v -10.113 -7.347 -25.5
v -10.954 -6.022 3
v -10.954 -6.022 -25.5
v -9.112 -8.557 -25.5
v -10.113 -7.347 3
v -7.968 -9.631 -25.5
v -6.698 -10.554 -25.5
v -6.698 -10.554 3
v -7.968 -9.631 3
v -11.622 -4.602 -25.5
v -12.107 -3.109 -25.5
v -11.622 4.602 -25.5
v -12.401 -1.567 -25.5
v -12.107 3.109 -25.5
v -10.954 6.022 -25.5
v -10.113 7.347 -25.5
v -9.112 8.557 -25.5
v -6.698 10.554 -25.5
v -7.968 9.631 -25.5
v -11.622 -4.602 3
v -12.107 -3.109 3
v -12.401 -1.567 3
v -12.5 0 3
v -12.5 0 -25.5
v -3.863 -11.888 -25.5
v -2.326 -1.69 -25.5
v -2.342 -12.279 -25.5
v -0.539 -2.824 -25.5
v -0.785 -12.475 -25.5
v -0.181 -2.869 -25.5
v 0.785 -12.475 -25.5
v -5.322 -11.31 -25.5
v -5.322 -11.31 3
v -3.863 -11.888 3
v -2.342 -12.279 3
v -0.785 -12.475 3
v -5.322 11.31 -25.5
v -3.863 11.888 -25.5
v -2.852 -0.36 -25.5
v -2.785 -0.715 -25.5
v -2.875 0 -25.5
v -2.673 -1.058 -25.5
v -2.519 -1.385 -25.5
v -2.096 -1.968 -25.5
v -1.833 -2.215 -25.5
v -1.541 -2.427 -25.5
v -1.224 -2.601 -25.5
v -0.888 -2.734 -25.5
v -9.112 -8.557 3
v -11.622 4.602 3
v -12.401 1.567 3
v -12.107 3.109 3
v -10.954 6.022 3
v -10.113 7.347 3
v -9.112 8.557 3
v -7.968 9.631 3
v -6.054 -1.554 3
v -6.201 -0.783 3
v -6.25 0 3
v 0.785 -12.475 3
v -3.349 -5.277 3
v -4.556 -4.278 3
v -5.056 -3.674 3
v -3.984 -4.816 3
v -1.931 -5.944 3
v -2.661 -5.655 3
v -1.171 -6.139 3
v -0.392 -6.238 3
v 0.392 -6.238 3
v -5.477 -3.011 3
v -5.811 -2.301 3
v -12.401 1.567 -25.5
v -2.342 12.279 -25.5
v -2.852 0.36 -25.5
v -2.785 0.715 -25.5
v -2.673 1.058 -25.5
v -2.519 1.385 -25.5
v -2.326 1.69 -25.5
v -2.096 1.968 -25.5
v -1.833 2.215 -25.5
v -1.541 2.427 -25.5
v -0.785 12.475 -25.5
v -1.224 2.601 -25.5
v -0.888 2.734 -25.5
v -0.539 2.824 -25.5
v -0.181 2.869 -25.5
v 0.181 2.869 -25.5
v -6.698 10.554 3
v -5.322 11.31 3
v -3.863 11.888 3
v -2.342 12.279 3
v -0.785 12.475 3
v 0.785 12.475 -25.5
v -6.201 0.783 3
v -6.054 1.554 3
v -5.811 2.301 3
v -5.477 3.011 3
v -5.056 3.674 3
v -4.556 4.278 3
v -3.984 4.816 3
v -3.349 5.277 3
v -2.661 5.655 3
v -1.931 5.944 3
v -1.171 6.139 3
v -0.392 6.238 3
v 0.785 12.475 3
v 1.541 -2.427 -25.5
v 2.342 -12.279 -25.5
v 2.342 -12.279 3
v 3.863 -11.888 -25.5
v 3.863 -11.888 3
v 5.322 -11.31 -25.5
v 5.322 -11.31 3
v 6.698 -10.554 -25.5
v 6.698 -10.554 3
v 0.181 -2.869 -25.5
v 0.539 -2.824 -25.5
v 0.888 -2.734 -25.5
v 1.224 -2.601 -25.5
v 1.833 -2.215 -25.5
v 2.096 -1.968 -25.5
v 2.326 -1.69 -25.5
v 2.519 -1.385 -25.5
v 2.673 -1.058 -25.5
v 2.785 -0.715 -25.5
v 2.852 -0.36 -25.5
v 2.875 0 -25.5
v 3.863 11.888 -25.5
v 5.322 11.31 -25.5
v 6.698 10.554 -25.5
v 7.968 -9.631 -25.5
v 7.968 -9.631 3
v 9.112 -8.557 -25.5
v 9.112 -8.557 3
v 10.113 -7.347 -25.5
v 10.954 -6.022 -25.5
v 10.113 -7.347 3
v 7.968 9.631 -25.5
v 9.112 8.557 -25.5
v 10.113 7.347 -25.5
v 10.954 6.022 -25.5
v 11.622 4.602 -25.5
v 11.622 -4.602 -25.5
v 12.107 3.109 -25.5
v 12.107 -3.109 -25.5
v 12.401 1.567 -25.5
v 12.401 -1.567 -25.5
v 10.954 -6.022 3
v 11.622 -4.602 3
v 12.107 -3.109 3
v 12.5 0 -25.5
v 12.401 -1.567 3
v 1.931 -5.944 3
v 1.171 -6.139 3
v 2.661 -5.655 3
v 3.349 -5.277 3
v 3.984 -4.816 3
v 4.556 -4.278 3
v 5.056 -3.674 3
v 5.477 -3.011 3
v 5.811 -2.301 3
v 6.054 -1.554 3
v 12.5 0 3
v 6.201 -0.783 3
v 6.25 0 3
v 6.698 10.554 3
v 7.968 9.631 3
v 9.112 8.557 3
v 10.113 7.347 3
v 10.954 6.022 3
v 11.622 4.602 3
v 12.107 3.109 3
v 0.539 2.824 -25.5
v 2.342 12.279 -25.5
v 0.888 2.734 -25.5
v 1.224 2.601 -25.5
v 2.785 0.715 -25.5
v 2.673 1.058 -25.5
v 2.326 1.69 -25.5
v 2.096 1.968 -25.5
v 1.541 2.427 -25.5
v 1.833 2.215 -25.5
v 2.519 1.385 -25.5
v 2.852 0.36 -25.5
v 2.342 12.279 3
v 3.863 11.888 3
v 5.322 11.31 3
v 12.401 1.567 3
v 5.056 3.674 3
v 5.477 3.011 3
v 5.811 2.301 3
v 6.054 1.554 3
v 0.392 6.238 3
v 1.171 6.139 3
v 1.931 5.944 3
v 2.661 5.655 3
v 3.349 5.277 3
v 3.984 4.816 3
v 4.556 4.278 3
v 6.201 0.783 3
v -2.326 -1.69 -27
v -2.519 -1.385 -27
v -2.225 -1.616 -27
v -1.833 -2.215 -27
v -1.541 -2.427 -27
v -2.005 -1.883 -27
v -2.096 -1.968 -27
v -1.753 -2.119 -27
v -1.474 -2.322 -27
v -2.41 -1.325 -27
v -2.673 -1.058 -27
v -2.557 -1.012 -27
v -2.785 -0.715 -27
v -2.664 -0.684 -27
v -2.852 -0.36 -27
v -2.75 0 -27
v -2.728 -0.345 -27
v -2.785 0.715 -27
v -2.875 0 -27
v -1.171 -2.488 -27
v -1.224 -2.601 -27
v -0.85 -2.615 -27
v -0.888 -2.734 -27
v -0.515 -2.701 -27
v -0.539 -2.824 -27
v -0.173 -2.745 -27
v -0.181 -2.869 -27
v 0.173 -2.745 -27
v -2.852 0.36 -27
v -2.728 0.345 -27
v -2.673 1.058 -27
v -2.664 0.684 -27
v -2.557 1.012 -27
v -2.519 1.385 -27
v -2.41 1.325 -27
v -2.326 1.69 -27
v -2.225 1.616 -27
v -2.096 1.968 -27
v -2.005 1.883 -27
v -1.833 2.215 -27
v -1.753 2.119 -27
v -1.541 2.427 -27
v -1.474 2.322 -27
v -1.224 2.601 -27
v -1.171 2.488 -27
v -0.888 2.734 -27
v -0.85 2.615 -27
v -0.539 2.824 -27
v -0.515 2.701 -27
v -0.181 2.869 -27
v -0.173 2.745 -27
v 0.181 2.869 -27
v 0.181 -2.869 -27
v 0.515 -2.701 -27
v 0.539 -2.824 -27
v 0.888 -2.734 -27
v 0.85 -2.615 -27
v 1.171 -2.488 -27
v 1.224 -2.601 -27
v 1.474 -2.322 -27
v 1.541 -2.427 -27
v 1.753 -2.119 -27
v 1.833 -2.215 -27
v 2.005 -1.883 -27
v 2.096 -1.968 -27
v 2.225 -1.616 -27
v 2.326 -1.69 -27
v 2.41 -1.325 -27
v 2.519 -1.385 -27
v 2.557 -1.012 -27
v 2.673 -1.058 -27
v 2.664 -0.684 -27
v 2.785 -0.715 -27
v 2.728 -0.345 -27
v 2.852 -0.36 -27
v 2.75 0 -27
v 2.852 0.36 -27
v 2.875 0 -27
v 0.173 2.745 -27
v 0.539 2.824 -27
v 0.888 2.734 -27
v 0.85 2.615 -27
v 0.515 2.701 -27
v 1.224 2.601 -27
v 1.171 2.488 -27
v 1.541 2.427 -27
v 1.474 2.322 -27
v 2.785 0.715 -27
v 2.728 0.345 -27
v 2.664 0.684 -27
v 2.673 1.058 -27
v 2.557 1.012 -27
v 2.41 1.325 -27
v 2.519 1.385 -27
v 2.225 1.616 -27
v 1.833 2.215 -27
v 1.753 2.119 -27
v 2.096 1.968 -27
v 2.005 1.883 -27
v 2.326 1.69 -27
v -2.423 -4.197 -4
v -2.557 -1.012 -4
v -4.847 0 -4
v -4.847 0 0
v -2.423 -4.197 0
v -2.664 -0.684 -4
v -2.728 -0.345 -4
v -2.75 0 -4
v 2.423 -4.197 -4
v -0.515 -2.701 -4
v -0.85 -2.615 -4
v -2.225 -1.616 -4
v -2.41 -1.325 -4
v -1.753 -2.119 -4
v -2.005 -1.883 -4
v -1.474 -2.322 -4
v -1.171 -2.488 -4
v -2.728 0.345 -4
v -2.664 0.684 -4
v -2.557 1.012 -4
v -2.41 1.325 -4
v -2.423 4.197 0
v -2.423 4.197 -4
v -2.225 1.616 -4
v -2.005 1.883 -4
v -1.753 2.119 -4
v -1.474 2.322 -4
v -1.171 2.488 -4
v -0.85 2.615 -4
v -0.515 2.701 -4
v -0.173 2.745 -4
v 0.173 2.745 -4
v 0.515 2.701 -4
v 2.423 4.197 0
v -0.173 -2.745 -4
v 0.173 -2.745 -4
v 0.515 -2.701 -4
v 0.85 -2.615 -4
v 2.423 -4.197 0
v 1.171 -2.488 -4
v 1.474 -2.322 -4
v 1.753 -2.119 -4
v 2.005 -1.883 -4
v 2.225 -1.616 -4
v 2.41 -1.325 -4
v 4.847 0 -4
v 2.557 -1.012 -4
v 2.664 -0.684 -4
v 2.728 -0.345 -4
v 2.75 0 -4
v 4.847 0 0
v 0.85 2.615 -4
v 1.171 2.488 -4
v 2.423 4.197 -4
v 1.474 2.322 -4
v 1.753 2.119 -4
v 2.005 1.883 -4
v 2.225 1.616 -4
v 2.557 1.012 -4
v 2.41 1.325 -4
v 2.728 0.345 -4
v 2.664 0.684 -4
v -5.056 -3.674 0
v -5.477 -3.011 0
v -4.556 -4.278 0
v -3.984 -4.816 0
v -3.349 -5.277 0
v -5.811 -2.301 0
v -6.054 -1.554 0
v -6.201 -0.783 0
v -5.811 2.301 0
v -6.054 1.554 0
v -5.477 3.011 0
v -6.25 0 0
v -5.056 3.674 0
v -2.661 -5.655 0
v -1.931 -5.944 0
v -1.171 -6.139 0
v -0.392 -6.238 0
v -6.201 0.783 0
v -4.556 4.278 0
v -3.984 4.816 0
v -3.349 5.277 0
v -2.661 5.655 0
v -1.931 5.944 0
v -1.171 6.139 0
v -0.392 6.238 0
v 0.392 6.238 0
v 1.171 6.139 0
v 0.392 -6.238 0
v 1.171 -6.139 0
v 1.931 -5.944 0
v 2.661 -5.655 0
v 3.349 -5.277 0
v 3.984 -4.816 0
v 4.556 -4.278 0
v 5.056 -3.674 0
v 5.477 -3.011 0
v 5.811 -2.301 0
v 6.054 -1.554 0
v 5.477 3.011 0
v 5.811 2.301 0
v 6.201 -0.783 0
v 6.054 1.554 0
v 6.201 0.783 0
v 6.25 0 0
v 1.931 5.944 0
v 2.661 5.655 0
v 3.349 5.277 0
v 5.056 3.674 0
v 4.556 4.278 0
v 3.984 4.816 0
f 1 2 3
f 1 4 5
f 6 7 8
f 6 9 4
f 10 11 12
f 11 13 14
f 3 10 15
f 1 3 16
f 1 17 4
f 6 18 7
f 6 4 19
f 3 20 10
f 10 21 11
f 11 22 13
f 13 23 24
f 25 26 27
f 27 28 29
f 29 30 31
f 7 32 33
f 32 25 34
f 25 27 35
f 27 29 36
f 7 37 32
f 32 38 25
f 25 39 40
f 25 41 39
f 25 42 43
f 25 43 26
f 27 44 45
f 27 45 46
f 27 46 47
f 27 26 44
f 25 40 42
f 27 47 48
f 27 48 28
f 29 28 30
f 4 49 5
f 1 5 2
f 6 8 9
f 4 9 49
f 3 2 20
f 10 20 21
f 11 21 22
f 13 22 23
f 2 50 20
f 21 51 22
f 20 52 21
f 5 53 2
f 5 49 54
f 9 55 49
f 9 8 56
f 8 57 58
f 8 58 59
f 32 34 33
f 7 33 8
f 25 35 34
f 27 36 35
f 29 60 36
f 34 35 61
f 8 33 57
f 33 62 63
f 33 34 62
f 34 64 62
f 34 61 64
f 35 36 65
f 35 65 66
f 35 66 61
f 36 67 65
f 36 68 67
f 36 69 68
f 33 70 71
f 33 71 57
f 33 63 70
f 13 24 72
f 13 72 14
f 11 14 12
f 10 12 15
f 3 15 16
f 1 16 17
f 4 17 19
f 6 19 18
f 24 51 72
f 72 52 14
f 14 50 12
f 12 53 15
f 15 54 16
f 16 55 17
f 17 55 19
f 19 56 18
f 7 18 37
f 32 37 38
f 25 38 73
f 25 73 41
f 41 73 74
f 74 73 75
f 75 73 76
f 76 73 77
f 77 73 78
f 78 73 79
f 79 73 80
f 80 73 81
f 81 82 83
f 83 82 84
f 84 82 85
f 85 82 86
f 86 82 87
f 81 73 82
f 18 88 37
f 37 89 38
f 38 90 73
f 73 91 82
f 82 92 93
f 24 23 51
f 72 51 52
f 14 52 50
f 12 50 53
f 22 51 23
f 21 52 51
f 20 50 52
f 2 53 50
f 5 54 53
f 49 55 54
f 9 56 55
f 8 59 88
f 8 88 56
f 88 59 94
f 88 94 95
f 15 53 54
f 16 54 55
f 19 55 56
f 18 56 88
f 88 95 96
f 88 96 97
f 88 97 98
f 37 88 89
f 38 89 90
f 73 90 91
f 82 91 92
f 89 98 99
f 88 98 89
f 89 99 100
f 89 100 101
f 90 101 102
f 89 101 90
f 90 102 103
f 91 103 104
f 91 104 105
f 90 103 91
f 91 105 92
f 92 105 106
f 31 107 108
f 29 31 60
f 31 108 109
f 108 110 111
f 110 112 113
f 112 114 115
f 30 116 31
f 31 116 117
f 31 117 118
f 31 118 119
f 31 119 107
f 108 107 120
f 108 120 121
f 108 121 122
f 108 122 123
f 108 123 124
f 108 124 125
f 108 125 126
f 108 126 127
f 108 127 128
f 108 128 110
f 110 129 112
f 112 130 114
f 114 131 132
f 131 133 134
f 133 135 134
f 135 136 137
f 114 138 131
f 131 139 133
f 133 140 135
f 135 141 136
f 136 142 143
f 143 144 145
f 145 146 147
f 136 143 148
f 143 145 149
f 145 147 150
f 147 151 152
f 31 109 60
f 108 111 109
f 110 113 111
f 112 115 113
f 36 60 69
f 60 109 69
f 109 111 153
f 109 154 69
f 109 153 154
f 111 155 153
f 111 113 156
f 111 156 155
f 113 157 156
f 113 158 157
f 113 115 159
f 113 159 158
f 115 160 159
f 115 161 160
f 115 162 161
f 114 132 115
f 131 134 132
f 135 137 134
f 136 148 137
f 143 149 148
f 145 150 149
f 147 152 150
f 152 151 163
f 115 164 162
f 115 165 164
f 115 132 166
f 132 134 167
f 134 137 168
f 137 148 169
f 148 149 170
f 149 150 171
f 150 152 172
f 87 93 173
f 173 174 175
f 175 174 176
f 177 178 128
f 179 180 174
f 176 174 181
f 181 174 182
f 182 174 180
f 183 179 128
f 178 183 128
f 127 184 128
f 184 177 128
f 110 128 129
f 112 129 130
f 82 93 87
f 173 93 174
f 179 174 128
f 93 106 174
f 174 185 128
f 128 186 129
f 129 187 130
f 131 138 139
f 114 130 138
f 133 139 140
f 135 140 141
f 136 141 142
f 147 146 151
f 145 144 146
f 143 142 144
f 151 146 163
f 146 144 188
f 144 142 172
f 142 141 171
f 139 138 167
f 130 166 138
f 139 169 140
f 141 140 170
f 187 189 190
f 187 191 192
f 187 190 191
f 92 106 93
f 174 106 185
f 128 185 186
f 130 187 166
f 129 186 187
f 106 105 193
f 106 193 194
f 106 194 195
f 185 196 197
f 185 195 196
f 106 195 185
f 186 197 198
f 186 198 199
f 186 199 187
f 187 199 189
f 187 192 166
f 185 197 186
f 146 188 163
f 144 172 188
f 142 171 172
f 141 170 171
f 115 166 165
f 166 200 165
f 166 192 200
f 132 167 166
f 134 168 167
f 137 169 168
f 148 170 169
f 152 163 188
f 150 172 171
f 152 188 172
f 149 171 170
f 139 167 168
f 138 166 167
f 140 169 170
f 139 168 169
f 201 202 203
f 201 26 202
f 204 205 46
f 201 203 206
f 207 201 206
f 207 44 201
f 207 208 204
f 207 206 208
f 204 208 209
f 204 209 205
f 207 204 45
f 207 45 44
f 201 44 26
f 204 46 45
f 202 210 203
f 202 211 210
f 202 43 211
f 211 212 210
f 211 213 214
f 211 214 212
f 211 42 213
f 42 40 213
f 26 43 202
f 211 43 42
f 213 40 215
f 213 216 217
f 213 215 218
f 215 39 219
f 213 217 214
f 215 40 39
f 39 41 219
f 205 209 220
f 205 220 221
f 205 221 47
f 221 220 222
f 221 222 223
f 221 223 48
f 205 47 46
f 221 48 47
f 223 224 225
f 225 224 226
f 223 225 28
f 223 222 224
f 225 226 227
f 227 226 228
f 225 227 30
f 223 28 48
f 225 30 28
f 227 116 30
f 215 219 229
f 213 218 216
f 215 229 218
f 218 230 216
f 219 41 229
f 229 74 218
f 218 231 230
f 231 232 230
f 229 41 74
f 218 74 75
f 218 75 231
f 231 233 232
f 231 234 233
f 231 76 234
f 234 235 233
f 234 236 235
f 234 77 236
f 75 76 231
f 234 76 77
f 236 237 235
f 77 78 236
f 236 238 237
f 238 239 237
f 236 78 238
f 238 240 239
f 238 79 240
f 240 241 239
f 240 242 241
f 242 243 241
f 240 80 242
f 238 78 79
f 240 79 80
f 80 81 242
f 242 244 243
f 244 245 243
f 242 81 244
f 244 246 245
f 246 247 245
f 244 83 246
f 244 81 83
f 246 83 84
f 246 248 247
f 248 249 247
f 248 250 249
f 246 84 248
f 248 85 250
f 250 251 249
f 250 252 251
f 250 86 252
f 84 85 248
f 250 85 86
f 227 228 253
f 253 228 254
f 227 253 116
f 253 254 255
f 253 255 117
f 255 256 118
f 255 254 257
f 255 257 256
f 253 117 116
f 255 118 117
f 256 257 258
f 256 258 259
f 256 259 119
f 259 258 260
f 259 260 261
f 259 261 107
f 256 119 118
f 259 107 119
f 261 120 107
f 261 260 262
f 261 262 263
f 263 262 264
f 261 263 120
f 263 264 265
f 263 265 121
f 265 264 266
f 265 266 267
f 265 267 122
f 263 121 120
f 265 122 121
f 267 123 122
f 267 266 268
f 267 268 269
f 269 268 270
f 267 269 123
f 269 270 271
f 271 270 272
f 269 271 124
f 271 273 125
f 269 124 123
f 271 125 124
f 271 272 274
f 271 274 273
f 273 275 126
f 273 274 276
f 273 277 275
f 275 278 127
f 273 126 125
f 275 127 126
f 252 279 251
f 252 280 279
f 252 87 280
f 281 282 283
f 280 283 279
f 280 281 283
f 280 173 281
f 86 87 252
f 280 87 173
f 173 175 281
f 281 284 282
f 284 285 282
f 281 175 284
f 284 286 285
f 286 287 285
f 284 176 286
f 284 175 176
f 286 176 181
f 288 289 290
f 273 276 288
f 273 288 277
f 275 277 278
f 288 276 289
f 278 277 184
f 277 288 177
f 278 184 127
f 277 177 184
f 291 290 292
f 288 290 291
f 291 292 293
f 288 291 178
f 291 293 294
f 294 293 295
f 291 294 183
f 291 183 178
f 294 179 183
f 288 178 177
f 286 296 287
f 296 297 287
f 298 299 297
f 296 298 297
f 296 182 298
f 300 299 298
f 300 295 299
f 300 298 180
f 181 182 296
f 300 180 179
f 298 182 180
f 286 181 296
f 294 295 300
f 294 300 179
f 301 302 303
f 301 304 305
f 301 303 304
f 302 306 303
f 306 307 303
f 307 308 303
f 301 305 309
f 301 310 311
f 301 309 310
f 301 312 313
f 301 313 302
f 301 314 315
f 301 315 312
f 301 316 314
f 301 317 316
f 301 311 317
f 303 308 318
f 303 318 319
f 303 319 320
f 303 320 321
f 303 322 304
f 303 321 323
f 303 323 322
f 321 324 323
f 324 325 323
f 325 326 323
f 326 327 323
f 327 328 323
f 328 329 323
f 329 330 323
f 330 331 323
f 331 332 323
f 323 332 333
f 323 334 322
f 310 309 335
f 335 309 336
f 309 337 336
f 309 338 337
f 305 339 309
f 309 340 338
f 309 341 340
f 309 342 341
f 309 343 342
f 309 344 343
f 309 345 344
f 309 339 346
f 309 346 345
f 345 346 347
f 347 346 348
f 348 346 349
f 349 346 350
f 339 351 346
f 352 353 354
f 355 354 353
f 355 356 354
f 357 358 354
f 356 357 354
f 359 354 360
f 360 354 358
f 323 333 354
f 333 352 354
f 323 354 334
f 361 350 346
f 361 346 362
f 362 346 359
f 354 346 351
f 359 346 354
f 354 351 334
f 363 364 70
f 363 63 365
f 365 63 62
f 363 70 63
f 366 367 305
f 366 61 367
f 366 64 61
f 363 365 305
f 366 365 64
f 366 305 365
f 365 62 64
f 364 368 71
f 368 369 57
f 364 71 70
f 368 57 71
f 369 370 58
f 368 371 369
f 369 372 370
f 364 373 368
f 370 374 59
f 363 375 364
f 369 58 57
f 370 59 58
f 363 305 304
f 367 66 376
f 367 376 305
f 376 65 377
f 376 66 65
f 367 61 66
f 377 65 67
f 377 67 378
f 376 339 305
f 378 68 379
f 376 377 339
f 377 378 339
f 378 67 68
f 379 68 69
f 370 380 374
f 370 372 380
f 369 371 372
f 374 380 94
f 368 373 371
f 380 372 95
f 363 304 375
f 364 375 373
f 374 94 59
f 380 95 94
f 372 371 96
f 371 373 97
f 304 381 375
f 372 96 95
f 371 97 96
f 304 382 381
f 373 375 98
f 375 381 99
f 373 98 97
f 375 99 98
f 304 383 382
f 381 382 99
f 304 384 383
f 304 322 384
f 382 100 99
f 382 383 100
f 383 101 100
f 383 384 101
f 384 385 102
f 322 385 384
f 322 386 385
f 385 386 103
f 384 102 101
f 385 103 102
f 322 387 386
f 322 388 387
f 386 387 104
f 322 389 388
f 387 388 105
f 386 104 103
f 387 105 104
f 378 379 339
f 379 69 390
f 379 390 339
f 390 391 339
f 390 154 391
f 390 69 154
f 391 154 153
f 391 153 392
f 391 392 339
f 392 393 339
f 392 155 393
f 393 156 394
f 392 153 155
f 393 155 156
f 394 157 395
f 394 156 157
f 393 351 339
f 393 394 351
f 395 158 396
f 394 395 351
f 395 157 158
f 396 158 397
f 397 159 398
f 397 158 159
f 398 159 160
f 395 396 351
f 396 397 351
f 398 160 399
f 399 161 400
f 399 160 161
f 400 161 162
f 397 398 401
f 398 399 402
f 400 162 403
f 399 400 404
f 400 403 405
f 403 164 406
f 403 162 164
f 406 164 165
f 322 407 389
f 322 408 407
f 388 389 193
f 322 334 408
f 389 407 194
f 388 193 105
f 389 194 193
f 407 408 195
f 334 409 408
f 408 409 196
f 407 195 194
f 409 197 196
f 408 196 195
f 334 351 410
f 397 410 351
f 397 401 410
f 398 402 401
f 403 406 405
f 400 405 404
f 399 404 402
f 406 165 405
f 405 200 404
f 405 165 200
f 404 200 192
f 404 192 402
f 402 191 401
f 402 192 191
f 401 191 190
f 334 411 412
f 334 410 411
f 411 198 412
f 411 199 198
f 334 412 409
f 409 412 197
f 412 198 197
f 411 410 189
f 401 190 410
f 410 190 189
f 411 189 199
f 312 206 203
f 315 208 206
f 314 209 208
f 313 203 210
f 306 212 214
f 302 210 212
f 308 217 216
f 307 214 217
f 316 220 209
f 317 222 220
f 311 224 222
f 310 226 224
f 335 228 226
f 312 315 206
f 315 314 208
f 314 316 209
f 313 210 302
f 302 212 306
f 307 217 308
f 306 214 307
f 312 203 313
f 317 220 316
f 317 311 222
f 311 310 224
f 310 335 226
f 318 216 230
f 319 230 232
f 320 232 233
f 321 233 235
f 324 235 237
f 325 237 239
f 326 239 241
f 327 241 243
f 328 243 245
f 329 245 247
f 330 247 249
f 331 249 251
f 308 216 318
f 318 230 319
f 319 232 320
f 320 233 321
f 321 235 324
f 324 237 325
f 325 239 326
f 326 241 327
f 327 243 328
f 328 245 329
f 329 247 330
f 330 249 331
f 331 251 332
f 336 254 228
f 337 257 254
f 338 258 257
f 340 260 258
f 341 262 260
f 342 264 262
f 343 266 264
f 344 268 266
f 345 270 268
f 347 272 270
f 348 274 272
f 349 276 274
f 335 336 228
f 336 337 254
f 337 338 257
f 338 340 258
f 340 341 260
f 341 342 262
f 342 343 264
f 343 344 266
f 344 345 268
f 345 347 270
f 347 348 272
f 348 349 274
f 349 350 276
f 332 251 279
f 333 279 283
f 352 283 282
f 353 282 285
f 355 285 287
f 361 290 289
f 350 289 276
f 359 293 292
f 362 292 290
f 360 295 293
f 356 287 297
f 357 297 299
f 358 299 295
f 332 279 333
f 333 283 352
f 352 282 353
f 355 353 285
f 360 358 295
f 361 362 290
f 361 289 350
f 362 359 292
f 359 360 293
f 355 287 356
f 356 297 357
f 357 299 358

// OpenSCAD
$fn = 50;

difference() {
	union() {
		translate(v = [0, 0, -25.5]) {
			cylinder(h = 28.5, r = 12.5);
		}
		#translate(v = [0, 0, -27.0]) {
			cylinder(h = 27, r = 2.875);
		}
	}
	union() {
		translate(v = [0, 0, 0]) {
			rotate(a = [0, 0, 0]) {
				difference() {
					union() {
						translate(v = [0, 0, -4]) {
							linear_extrude(height = 4) {
								polygon(points = [[4.8468, 0.0], [2.4234000000000004, 4.197451927062417], [-2.423399999999999, 4.197451927062417], [-4.8468, 5.935618106107392e-16], [-2.423400000000002, -4.197451927062416], [2.423399999999997, -4.197451927062419]]);
							}
						}
					}
					union();
				}
			}
		}
		#cylinder(h = 3, r = 6.25);
		#translate(v = [0, 0, -100.0]) {
			cylinder(h = 200, r = 2.75);
		}
	}
}
